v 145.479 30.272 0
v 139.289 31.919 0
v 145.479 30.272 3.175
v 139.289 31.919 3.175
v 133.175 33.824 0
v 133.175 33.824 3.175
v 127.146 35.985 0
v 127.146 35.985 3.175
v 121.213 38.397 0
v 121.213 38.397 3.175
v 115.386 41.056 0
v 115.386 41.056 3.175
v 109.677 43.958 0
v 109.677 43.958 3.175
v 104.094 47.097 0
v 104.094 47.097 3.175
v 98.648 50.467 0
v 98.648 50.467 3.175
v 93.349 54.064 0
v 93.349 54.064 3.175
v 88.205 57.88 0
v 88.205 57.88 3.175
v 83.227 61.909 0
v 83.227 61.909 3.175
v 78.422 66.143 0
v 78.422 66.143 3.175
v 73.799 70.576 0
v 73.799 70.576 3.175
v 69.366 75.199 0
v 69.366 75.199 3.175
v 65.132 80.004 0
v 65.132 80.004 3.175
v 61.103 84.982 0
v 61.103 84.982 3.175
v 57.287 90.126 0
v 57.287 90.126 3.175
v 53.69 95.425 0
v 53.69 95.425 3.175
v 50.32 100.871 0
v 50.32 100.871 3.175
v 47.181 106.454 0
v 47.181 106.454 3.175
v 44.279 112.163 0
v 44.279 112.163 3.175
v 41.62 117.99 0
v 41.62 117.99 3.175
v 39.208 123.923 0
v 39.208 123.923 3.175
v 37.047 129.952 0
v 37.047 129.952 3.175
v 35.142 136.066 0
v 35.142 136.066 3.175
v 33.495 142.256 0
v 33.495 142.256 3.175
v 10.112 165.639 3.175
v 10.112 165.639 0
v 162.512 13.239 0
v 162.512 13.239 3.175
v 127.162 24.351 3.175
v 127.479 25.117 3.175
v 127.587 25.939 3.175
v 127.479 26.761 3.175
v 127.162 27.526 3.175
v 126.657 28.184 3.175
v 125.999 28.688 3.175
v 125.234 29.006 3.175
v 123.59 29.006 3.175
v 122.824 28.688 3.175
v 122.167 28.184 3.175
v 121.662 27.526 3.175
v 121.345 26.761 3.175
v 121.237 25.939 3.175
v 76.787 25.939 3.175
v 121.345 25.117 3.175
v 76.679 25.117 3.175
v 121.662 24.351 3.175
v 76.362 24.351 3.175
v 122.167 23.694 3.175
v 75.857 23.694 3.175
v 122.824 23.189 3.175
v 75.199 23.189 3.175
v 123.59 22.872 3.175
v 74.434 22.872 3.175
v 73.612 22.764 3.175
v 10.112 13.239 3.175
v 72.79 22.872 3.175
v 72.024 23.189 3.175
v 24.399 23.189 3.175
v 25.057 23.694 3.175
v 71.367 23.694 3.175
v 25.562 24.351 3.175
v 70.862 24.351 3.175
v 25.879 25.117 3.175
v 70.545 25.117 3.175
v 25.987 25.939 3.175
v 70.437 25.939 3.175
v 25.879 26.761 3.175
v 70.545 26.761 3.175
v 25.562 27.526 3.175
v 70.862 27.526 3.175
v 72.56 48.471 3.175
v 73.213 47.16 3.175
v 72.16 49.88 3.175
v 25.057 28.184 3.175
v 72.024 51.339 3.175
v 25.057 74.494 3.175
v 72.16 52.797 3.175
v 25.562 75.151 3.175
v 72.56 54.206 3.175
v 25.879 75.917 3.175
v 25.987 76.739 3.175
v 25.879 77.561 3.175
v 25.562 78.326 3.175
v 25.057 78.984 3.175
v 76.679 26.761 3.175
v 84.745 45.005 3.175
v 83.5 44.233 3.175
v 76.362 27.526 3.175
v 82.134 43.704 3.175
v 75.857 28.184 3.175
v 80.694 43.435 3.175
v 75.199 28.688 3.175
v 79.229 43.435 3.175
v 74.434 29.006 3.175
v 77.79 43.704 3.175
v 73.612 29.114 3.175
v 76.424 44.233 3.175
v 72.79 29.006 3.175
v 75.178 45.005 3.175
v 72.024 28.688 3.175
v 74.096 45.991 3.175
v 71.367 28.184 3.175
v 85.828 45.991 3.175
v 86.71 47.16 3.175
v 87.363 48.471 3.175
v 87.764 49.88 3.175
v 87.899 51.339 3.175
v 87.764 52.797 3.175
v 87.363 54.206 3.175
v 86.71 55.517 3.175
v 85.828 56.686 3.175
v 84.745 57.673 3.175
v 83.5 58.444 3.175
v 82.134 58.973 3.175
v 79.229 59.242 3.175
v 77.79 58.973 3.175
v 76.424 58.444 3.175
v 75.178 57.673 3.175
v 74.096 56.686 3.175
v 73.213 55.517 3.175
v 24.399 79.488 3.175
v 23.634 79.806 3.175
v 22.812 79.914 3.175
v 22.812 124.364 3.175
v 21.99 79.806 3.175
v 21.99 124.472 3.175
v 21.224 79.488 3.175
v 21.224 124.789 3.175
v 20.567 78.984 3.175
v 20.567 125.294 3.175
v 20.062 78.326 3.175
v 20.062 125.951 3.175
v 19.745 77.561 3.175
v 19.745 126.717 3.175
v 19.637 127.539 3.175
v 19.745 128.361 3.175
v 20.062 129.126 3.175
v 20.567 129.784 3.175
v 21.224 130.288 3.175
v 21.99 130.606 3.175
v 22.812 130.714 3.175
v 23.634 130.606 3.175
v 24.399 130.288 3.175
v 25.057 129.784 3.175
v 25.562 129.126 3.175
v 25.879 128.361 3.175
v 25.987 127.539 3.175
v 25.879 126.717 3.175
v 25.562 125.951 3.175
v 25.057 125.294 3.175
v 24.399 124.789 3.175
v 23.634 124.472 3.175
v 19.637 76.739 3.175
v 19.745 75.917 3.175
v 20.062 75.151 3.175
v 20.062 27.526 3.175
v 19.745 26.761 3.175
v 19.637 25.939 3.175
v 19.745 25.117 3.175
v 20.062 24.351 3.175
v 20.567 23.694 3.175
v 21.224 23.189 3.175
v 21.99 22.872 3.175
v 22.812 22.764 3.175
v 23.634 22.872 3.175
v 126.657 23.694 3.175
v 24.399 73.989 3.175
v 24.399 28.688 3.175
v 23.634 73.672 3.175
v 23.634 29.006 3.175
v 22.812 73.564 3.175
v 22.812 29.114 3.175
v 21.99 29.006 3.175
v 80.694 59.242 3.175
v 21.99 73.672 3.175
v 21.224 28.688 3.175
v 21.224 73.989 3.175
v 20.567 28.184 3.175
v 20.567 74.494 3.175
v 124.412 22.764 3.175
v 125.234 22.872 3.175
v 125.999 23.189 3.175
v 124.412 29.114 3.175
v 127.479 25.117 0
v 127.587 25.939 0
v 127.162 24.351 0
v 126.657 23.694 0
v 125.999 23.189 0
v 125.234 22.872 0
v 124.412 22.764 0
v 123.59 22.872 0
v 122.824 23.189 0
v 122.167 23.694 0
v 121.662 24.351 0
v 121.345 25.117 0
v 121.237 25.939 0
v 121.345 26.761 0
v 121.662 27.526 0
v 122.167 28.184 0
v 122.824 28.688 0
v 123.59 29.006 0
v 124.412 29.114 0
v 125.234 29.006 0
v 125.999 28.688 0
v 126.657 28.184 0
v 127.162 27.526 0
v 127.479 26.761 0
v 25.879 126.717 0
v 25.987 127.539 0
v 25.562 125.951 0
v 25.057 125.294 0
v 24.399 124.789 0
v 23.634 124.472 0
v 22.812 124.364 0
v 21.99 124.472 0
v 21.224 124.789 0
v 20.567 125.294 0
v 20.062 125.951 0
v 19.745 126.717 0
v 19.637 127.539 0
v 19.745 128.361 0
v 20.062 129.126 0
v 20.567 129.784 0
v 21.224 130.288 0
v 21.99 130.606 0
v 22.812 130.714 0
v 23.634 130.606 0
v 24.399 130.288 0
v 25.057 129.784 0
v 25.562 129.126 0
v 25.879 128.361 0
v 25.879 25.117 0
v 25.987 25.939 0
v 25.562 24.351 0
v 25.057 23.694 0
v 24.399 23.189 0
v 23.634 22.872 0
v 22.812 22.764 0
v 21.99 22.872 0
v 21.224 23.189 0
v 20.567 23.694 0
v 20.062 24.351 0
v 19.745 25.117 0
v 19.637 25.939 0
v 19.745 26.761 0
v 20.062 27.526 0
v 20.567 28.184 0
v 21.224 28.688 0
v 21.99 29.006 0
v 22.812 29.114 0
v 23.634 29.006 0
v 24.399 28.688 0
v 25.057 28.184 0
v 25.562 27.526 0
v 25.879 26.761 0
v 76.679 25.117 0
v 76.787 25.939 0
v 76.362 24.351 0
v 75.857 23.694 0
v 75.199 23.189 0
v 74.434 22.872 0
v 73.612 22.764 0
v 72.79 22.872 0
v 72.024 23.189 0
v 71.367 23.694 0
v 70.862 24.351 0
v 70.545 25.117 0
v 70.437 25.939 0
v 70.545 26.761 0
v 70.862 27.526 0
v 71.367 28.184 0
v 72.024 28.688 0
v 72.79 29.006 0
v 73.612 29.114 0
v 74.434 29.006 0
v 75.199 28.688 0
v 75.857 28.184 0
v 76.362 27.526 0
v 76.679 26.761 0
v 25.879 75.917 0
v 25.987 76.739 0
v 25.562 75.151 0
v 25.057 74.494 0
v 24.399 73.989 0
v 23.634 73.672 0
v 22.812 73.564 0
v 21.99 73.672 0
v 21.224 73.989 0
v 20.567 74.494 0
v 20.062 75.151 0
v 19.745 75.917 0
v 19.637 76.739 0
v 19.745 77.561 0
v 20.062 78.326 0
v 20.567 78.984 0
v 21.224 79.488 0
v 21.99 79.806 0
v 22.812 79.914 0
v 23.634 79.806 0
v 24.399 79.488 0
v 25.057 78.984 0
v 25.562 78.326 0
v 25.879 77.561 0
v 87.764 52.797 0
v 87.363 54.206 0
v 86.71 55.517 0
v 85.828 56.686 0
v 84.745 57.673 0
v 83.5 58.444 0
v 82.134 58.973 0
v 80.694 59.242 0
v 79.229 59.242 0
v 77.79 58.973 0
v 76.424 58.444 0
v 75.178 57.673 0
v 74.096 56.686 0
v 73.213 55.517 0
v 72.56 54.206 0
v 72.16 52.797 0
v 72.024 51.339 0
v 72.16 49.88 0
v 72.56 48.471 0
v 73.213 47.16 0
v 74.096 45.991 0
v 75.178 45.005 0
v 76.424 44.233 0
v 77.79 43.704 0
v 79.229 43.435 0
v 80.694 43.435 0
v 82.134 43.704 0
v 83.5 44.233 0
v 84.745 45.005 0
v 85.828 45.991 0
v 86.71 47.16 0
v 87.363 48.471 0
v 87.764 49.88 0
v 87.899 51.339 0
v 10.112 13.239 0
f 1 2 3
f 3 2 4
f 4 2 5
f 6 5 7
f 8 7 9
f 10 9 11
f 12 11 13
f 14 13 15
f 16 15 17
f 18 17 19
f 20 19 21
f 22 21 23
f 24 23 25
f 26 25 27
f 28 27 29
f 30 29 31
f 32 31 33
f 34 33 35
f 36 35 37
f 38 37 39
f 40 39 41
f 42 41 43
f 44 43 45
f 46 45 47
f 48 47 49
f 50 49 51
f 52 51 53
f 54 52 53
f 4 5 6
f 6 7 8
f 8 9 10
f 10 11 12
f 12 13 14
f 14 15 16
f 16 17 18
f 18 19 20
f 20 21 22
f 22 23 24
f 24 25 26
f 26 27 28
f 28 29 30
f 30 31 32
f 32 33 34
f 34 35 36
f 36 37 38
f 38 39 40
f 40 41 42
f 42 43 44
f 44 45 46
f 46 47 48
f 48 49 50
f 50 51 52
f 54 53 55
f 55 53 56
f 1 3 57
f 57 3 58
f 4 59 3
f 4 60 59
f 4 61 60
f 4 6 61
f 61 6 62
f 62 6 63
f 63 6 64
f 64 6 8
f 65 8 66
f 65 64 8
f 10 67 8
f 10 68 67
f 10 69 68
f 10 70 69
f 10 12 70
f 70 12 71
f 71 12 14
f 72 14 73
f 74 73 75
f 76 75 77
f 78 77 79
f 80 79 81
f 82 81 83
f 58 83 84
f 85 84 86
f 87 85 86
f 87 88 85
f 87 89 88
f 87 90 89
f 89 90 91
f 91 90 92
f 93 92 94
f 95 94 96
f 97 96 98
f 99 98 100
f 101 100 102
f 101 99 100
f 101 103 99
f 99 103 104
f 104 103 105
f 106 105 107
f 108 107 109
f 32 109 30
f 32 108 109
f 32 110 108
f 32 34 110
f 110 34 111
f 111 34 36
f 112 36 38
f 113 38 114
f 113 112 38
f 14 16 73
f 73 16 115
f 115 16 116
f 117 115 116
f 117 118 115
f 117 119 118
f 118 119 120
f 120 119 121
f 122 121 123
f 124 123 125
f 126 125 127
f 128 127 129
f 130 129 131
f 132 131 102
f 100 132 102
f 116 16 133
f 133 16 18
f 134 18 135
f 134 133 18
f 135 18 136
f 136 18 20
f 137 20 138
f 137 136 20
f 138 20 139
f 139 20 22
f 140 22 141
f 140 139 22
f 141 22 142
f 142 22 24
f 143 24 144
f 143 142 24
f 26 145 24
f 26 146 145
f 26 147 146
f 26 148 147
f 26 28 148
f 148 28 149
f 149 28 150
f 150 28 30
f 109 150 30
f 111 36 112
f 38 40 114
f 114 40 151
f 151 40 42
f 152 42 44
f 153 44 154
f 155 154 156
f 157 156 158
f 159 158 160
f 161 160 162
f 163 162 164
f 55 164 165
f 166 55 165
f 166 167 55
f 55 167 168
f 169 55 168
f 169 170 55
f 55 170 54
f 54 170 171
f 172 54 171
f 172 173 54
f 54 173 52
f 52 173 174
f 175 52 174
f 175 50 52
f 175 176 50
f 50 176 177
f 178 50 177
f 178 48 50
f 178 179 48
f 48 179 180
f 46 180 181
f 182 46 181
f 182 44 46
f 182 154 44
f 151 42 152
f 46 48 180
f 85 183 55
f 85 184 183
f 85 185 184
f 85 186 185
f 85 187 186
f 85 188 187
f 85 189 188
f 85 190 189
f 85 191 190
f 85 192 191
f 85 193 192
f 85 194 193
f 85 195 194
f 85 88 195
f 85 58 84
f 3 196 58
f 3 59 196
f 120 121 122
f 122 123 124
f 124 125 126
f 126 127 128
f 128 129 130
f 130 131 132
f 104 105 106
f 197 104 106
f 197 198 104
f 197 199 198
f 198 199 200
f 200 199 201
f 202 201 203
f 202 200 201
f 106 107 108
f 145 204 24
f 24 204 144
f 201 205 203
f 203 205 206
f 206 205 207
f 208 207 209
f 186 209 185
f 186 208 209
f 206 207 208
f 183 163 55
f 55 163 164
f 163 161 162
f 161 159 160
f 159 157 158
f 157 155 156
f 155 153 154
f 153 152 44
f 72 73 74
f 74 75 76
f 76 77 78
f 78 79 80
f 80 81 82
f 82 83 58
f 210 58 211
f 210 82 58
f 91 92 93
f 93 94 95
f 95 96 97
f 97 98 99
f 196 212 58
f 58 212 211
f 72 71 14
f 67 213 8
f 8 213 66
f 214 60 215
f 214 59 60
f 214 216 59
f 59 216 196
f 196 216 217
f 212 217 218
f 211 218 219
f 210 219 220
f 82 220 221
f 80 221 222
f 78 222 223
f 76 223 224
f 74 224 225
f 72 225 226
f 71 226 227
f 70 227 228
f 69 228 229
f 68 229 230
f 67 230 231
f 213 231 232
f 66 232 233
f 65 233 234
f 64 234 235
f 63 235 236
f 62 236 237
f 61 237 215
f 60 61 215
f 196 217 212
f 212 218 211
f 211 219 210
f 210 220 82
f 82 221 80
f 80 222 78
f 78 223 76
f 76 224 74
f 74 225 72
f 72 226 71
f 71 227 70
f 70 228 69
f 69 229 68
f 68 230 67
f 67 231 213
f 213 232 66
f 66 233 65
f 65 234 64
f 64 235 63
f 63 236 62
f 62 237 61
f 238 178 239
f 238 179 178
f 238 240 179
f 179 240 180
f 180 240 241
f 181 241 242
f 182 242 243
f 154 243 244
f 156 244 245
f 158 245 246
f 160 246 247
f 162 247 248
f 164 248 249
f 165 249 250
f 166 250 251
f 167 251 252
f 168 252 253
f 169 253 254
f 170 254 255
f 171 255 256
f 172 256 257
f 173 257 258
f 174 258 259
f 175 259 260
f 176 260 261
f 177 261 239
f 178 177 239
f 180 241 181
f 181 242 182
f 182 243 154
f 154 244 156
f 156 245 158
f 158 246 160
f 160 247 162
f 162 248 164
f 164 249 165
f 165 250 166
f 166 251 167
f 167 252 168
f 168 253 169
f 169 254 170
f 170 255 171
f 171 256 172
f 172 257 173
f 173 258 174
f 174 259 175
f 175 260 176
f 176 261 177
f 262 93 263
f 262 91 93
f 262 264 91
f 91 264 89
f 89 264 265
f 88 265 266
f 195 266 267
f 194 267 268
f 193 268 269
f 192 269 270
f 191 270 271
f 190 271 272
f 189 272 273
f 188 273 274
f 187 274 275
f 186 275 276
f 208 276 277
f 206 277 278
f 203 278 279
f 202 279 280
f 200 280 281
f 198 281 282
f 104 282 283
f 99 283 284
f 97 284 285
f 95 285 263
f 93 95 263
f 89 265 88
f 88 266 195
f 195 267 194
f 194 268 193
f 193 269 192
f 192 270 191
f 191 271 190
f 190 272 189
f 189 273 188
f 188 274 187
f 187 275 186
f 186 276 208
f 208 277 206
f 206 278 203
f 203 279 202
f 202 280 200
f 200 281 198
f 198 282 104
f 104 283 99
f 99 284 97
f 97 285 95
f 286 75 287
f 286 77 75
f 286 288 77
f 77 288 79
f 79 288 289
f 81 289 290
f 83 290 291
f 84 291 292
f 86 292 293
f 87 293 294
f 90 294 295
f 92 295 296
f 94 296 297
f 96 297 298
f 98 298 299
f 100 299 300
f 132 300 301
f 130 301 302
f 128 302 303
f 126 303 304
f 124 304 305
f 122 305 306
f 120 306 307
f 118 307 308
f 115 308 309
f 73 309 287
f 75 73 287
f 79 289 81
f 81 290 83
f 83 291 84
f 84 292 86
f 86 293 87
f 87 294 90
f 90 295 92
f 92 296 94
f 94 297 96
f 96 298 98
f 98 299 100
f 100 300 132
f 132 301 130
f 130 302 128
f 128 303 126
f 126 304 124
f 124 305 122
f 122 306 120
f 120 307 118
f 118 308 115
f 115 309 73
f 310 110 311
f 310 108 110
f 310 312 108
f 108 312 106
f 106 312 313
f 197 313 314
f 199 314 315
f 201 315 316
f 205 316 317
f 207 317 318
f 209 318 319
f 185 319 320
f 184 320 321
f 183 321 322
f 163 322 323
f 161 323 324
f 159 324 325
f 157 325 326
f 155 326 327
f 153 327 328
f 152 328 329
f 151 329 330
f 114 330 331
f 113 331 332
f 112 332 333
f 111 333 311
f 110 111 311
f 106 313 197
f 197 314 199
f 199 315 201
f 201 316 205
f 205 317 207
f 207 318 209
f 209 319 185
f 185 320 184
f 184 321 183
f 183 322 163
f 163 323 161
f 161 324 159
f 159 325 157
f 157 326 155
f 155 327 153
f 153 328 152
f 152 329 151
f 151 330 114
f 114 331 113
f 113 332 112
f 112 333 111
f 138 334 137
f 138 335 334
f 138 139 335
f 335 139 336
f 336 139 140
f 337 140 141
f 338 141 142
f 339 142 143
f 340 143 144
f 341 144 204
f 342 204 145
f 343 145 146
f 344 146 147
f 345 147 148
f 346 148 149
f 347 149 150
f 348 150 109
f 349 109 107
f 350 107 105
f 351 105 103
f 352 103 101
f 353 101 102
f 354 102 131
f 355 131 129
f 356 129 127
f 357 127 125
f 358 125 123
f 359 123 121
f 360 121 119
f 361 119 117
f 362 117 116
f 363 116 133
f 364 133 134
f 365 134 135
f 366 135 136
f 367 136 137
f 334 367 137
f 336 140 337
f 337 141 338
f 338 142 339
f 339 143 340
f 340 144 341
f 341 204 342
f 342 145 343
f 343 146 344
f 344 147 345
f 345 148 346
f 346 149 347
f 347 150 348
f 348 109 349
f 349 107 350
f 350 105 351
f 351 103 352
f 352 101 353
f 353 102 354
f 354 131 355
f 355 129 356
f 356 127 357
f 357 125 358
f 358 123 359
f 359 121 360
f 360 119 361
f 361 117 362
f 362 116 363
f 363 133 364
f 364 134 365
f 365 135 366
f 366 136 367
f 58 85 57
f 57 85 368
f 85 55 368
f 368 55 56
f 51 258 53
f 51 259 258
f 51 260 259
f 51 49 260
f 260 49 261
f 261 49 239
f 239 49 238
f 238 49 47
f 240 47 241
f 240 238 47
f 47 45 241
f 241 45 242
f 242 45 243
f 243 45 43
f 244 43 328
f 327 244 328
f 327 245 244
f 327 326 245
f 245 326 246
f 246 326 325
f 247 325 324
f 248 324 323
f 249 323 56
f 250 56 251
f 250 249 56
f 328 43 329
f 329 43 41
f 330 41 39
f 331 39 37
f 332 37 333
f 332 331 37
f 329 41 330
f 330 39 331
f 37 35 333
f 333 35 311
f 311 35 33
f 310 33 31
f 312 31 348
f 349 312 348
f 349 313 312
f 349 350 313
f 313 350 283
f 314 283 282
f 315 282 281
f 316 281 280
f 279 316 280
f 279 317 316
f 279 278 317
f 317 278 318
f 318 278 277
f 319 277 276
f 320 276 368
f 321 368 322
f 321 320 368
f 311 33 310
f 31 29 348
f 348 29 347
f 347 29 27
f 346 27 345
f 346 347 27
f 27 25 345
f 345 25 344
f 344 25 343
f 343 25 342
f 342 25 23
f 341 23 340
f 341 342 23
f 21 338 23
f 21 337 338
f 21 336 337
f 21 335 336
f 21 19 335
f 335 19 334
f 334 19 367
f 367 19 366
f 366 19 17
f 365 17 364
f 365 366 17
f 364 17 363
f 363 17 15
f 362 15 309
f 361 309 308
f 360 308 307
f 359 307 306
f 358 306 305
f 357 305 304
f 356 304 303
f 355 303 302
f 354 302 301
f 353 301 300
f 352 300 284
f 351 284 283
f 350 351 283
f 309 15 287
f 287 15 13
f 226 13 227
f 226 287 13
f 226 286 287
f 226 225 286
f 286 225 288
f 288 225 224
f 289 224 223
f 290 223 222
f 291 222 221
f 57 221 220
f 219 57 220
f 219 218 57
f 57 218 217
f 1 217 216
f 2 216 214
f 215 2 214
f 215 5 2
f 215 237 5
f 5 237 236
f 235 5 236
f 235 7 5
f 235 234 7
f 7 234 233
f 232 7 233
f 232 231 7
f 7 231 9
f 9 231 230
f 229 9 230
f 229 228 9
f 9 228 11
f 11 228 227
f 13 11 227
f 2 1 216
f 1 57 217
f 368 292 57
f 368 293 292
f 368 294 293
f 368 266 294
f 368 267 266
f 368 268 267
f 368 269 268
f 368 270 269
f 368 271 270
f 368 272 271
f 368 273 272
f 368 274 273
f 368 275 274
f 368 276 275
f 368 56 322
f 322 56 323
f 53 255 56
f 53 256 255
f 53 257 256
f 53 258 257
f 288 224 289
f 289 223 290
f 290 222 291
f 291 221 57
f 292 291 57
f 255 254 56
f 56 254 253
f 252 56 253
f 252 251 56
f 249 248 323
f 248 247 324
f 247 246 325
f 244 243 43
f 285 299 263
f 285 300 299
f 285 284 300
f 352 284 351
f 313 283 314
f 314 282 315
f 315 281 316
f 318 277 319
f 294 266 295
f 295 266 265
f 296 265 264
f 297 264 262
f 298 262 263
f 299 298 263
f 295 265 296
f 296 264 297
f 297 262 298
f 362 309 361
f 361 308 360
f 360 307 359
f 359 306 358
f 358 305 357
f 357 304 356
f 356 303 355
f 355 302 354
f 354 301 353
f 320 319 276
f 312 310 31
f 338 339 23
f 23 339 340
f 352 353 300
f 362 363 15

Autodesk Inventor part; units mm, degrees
ref_plane "YZ Plane" through (0, 0, 0) normal (1, 0, 0) x (0, 1, 0)
ref_plane "XZ Plane" through (0, 0, 0) normal (0, 1, 0) x (-1, 0, 0)
ref_plane "XY Plane" through (0, 0, 0) normal (0, 0, 1) x (1, 0, 0)
sketch "Sketch1" plane through (0, 0, 0) normal (0, 0, 1) x (1, 0, 0)
  circle A0 centre (79.9619, 51.3388) radius 7.9375
  line L0 (10.1119, 165.6388) -> (10.1119, 13.2388)
  line L1 (10.1119, 13.2388) -> (162.5119, 13.2388)
  line L2 (162.5119, 13.2388) -> (10.1119, 165.6388)
  point P0 (0, 0)
  dimension "d0" = 15.875
  dimension "d1" = 152.4
  dimension "d2" = 152.4
  dimension "d3" = 38.1
  dimension "d4" = 69.85
extrude "Extrusion1" add sketch "Sketch1" along normal blind 3.175
sketch "Sketch2" plane through (0, 0, 3.175) normal (0, 0, 1) x (1, 0, 0)
  line L0 (10.1119, 13.2388) -> (10.1119, 165.6388) projected
  line L1 (162.5119, 13.2388) -> (10.1119, 13.2388) projected
  circle A0 centre (22.8119, 76.7388) radius 3.175
  circle A1 centre (73.6119, 25.9388) radius 3.175
  circle A2 centre (22.8119, 25.9388) radius 3.175
  line L2 (22.8119, 76.7388) -> (22.8119, 25.9388) construction
  line L3 (22.8119, 25.9388) -> (73.6119, 25.9388) construction
  point P0 (0, 0)
  dimension "d7" = 6.35
  dimension "d8" = 12.7
  dimension "d9" = 12.7
  dimension "d10" = 50.8
  dimension "d13" = 50.8
extrude "Extrusion2" cut sketch "Sketch2" against normal through all
sketch "Sketch3" plane through (0, 0, 3.175) normal (0, 0, 1) x (1, 0, 0)
  circle A0 centre (22.8119, 25.9388) radius 3.175 projected
  circle A1 centre (22.8119, 127.5388) radius 3.175
  circle A2 centre (124.4119, 25.9388) radius 3.175
  line L0 (22.8119, 127.5388) -> (22.8119, 25.9388) construction
  line L1 (22.8119, 25.9388) -> (124.4119, 25.9388) construction
  point P0 (0, 0)
  dimension "d14" = 6.35
  dimension "d15" = 101.6
extrude "Extrusion3" cut sketch "Sketch3" against normal through all contours A1 | A2
sketch "Sketch5" plane through (0, 0, 3.175) normal (0, 0, 1) x (1, 0, 0)
  line L0 (10.1119, 165.6388) -> (162.5119, 13.2388) projected
  arc A0 (33.4951, 142.2556) -> (145.4786, 30.2721) centre (181.5619, 178.3388) ccw
  line L1 (33.4951, 142.2556) -> (145.4786, 30.2721)
  line L2 (10.1119, 13.2388) -> (10.1119, 165.6388) projected
  point P0 (0, 0)
  dimension "d18" = 152.4
  dimension "d25" = 165.1
  dimension "d26" = 171.45
extrude "Extrusion5" cut sketch "Sketch5" against normal through all
properties part number "CylinderOffsetPlate" material "Aluminum-6061"
